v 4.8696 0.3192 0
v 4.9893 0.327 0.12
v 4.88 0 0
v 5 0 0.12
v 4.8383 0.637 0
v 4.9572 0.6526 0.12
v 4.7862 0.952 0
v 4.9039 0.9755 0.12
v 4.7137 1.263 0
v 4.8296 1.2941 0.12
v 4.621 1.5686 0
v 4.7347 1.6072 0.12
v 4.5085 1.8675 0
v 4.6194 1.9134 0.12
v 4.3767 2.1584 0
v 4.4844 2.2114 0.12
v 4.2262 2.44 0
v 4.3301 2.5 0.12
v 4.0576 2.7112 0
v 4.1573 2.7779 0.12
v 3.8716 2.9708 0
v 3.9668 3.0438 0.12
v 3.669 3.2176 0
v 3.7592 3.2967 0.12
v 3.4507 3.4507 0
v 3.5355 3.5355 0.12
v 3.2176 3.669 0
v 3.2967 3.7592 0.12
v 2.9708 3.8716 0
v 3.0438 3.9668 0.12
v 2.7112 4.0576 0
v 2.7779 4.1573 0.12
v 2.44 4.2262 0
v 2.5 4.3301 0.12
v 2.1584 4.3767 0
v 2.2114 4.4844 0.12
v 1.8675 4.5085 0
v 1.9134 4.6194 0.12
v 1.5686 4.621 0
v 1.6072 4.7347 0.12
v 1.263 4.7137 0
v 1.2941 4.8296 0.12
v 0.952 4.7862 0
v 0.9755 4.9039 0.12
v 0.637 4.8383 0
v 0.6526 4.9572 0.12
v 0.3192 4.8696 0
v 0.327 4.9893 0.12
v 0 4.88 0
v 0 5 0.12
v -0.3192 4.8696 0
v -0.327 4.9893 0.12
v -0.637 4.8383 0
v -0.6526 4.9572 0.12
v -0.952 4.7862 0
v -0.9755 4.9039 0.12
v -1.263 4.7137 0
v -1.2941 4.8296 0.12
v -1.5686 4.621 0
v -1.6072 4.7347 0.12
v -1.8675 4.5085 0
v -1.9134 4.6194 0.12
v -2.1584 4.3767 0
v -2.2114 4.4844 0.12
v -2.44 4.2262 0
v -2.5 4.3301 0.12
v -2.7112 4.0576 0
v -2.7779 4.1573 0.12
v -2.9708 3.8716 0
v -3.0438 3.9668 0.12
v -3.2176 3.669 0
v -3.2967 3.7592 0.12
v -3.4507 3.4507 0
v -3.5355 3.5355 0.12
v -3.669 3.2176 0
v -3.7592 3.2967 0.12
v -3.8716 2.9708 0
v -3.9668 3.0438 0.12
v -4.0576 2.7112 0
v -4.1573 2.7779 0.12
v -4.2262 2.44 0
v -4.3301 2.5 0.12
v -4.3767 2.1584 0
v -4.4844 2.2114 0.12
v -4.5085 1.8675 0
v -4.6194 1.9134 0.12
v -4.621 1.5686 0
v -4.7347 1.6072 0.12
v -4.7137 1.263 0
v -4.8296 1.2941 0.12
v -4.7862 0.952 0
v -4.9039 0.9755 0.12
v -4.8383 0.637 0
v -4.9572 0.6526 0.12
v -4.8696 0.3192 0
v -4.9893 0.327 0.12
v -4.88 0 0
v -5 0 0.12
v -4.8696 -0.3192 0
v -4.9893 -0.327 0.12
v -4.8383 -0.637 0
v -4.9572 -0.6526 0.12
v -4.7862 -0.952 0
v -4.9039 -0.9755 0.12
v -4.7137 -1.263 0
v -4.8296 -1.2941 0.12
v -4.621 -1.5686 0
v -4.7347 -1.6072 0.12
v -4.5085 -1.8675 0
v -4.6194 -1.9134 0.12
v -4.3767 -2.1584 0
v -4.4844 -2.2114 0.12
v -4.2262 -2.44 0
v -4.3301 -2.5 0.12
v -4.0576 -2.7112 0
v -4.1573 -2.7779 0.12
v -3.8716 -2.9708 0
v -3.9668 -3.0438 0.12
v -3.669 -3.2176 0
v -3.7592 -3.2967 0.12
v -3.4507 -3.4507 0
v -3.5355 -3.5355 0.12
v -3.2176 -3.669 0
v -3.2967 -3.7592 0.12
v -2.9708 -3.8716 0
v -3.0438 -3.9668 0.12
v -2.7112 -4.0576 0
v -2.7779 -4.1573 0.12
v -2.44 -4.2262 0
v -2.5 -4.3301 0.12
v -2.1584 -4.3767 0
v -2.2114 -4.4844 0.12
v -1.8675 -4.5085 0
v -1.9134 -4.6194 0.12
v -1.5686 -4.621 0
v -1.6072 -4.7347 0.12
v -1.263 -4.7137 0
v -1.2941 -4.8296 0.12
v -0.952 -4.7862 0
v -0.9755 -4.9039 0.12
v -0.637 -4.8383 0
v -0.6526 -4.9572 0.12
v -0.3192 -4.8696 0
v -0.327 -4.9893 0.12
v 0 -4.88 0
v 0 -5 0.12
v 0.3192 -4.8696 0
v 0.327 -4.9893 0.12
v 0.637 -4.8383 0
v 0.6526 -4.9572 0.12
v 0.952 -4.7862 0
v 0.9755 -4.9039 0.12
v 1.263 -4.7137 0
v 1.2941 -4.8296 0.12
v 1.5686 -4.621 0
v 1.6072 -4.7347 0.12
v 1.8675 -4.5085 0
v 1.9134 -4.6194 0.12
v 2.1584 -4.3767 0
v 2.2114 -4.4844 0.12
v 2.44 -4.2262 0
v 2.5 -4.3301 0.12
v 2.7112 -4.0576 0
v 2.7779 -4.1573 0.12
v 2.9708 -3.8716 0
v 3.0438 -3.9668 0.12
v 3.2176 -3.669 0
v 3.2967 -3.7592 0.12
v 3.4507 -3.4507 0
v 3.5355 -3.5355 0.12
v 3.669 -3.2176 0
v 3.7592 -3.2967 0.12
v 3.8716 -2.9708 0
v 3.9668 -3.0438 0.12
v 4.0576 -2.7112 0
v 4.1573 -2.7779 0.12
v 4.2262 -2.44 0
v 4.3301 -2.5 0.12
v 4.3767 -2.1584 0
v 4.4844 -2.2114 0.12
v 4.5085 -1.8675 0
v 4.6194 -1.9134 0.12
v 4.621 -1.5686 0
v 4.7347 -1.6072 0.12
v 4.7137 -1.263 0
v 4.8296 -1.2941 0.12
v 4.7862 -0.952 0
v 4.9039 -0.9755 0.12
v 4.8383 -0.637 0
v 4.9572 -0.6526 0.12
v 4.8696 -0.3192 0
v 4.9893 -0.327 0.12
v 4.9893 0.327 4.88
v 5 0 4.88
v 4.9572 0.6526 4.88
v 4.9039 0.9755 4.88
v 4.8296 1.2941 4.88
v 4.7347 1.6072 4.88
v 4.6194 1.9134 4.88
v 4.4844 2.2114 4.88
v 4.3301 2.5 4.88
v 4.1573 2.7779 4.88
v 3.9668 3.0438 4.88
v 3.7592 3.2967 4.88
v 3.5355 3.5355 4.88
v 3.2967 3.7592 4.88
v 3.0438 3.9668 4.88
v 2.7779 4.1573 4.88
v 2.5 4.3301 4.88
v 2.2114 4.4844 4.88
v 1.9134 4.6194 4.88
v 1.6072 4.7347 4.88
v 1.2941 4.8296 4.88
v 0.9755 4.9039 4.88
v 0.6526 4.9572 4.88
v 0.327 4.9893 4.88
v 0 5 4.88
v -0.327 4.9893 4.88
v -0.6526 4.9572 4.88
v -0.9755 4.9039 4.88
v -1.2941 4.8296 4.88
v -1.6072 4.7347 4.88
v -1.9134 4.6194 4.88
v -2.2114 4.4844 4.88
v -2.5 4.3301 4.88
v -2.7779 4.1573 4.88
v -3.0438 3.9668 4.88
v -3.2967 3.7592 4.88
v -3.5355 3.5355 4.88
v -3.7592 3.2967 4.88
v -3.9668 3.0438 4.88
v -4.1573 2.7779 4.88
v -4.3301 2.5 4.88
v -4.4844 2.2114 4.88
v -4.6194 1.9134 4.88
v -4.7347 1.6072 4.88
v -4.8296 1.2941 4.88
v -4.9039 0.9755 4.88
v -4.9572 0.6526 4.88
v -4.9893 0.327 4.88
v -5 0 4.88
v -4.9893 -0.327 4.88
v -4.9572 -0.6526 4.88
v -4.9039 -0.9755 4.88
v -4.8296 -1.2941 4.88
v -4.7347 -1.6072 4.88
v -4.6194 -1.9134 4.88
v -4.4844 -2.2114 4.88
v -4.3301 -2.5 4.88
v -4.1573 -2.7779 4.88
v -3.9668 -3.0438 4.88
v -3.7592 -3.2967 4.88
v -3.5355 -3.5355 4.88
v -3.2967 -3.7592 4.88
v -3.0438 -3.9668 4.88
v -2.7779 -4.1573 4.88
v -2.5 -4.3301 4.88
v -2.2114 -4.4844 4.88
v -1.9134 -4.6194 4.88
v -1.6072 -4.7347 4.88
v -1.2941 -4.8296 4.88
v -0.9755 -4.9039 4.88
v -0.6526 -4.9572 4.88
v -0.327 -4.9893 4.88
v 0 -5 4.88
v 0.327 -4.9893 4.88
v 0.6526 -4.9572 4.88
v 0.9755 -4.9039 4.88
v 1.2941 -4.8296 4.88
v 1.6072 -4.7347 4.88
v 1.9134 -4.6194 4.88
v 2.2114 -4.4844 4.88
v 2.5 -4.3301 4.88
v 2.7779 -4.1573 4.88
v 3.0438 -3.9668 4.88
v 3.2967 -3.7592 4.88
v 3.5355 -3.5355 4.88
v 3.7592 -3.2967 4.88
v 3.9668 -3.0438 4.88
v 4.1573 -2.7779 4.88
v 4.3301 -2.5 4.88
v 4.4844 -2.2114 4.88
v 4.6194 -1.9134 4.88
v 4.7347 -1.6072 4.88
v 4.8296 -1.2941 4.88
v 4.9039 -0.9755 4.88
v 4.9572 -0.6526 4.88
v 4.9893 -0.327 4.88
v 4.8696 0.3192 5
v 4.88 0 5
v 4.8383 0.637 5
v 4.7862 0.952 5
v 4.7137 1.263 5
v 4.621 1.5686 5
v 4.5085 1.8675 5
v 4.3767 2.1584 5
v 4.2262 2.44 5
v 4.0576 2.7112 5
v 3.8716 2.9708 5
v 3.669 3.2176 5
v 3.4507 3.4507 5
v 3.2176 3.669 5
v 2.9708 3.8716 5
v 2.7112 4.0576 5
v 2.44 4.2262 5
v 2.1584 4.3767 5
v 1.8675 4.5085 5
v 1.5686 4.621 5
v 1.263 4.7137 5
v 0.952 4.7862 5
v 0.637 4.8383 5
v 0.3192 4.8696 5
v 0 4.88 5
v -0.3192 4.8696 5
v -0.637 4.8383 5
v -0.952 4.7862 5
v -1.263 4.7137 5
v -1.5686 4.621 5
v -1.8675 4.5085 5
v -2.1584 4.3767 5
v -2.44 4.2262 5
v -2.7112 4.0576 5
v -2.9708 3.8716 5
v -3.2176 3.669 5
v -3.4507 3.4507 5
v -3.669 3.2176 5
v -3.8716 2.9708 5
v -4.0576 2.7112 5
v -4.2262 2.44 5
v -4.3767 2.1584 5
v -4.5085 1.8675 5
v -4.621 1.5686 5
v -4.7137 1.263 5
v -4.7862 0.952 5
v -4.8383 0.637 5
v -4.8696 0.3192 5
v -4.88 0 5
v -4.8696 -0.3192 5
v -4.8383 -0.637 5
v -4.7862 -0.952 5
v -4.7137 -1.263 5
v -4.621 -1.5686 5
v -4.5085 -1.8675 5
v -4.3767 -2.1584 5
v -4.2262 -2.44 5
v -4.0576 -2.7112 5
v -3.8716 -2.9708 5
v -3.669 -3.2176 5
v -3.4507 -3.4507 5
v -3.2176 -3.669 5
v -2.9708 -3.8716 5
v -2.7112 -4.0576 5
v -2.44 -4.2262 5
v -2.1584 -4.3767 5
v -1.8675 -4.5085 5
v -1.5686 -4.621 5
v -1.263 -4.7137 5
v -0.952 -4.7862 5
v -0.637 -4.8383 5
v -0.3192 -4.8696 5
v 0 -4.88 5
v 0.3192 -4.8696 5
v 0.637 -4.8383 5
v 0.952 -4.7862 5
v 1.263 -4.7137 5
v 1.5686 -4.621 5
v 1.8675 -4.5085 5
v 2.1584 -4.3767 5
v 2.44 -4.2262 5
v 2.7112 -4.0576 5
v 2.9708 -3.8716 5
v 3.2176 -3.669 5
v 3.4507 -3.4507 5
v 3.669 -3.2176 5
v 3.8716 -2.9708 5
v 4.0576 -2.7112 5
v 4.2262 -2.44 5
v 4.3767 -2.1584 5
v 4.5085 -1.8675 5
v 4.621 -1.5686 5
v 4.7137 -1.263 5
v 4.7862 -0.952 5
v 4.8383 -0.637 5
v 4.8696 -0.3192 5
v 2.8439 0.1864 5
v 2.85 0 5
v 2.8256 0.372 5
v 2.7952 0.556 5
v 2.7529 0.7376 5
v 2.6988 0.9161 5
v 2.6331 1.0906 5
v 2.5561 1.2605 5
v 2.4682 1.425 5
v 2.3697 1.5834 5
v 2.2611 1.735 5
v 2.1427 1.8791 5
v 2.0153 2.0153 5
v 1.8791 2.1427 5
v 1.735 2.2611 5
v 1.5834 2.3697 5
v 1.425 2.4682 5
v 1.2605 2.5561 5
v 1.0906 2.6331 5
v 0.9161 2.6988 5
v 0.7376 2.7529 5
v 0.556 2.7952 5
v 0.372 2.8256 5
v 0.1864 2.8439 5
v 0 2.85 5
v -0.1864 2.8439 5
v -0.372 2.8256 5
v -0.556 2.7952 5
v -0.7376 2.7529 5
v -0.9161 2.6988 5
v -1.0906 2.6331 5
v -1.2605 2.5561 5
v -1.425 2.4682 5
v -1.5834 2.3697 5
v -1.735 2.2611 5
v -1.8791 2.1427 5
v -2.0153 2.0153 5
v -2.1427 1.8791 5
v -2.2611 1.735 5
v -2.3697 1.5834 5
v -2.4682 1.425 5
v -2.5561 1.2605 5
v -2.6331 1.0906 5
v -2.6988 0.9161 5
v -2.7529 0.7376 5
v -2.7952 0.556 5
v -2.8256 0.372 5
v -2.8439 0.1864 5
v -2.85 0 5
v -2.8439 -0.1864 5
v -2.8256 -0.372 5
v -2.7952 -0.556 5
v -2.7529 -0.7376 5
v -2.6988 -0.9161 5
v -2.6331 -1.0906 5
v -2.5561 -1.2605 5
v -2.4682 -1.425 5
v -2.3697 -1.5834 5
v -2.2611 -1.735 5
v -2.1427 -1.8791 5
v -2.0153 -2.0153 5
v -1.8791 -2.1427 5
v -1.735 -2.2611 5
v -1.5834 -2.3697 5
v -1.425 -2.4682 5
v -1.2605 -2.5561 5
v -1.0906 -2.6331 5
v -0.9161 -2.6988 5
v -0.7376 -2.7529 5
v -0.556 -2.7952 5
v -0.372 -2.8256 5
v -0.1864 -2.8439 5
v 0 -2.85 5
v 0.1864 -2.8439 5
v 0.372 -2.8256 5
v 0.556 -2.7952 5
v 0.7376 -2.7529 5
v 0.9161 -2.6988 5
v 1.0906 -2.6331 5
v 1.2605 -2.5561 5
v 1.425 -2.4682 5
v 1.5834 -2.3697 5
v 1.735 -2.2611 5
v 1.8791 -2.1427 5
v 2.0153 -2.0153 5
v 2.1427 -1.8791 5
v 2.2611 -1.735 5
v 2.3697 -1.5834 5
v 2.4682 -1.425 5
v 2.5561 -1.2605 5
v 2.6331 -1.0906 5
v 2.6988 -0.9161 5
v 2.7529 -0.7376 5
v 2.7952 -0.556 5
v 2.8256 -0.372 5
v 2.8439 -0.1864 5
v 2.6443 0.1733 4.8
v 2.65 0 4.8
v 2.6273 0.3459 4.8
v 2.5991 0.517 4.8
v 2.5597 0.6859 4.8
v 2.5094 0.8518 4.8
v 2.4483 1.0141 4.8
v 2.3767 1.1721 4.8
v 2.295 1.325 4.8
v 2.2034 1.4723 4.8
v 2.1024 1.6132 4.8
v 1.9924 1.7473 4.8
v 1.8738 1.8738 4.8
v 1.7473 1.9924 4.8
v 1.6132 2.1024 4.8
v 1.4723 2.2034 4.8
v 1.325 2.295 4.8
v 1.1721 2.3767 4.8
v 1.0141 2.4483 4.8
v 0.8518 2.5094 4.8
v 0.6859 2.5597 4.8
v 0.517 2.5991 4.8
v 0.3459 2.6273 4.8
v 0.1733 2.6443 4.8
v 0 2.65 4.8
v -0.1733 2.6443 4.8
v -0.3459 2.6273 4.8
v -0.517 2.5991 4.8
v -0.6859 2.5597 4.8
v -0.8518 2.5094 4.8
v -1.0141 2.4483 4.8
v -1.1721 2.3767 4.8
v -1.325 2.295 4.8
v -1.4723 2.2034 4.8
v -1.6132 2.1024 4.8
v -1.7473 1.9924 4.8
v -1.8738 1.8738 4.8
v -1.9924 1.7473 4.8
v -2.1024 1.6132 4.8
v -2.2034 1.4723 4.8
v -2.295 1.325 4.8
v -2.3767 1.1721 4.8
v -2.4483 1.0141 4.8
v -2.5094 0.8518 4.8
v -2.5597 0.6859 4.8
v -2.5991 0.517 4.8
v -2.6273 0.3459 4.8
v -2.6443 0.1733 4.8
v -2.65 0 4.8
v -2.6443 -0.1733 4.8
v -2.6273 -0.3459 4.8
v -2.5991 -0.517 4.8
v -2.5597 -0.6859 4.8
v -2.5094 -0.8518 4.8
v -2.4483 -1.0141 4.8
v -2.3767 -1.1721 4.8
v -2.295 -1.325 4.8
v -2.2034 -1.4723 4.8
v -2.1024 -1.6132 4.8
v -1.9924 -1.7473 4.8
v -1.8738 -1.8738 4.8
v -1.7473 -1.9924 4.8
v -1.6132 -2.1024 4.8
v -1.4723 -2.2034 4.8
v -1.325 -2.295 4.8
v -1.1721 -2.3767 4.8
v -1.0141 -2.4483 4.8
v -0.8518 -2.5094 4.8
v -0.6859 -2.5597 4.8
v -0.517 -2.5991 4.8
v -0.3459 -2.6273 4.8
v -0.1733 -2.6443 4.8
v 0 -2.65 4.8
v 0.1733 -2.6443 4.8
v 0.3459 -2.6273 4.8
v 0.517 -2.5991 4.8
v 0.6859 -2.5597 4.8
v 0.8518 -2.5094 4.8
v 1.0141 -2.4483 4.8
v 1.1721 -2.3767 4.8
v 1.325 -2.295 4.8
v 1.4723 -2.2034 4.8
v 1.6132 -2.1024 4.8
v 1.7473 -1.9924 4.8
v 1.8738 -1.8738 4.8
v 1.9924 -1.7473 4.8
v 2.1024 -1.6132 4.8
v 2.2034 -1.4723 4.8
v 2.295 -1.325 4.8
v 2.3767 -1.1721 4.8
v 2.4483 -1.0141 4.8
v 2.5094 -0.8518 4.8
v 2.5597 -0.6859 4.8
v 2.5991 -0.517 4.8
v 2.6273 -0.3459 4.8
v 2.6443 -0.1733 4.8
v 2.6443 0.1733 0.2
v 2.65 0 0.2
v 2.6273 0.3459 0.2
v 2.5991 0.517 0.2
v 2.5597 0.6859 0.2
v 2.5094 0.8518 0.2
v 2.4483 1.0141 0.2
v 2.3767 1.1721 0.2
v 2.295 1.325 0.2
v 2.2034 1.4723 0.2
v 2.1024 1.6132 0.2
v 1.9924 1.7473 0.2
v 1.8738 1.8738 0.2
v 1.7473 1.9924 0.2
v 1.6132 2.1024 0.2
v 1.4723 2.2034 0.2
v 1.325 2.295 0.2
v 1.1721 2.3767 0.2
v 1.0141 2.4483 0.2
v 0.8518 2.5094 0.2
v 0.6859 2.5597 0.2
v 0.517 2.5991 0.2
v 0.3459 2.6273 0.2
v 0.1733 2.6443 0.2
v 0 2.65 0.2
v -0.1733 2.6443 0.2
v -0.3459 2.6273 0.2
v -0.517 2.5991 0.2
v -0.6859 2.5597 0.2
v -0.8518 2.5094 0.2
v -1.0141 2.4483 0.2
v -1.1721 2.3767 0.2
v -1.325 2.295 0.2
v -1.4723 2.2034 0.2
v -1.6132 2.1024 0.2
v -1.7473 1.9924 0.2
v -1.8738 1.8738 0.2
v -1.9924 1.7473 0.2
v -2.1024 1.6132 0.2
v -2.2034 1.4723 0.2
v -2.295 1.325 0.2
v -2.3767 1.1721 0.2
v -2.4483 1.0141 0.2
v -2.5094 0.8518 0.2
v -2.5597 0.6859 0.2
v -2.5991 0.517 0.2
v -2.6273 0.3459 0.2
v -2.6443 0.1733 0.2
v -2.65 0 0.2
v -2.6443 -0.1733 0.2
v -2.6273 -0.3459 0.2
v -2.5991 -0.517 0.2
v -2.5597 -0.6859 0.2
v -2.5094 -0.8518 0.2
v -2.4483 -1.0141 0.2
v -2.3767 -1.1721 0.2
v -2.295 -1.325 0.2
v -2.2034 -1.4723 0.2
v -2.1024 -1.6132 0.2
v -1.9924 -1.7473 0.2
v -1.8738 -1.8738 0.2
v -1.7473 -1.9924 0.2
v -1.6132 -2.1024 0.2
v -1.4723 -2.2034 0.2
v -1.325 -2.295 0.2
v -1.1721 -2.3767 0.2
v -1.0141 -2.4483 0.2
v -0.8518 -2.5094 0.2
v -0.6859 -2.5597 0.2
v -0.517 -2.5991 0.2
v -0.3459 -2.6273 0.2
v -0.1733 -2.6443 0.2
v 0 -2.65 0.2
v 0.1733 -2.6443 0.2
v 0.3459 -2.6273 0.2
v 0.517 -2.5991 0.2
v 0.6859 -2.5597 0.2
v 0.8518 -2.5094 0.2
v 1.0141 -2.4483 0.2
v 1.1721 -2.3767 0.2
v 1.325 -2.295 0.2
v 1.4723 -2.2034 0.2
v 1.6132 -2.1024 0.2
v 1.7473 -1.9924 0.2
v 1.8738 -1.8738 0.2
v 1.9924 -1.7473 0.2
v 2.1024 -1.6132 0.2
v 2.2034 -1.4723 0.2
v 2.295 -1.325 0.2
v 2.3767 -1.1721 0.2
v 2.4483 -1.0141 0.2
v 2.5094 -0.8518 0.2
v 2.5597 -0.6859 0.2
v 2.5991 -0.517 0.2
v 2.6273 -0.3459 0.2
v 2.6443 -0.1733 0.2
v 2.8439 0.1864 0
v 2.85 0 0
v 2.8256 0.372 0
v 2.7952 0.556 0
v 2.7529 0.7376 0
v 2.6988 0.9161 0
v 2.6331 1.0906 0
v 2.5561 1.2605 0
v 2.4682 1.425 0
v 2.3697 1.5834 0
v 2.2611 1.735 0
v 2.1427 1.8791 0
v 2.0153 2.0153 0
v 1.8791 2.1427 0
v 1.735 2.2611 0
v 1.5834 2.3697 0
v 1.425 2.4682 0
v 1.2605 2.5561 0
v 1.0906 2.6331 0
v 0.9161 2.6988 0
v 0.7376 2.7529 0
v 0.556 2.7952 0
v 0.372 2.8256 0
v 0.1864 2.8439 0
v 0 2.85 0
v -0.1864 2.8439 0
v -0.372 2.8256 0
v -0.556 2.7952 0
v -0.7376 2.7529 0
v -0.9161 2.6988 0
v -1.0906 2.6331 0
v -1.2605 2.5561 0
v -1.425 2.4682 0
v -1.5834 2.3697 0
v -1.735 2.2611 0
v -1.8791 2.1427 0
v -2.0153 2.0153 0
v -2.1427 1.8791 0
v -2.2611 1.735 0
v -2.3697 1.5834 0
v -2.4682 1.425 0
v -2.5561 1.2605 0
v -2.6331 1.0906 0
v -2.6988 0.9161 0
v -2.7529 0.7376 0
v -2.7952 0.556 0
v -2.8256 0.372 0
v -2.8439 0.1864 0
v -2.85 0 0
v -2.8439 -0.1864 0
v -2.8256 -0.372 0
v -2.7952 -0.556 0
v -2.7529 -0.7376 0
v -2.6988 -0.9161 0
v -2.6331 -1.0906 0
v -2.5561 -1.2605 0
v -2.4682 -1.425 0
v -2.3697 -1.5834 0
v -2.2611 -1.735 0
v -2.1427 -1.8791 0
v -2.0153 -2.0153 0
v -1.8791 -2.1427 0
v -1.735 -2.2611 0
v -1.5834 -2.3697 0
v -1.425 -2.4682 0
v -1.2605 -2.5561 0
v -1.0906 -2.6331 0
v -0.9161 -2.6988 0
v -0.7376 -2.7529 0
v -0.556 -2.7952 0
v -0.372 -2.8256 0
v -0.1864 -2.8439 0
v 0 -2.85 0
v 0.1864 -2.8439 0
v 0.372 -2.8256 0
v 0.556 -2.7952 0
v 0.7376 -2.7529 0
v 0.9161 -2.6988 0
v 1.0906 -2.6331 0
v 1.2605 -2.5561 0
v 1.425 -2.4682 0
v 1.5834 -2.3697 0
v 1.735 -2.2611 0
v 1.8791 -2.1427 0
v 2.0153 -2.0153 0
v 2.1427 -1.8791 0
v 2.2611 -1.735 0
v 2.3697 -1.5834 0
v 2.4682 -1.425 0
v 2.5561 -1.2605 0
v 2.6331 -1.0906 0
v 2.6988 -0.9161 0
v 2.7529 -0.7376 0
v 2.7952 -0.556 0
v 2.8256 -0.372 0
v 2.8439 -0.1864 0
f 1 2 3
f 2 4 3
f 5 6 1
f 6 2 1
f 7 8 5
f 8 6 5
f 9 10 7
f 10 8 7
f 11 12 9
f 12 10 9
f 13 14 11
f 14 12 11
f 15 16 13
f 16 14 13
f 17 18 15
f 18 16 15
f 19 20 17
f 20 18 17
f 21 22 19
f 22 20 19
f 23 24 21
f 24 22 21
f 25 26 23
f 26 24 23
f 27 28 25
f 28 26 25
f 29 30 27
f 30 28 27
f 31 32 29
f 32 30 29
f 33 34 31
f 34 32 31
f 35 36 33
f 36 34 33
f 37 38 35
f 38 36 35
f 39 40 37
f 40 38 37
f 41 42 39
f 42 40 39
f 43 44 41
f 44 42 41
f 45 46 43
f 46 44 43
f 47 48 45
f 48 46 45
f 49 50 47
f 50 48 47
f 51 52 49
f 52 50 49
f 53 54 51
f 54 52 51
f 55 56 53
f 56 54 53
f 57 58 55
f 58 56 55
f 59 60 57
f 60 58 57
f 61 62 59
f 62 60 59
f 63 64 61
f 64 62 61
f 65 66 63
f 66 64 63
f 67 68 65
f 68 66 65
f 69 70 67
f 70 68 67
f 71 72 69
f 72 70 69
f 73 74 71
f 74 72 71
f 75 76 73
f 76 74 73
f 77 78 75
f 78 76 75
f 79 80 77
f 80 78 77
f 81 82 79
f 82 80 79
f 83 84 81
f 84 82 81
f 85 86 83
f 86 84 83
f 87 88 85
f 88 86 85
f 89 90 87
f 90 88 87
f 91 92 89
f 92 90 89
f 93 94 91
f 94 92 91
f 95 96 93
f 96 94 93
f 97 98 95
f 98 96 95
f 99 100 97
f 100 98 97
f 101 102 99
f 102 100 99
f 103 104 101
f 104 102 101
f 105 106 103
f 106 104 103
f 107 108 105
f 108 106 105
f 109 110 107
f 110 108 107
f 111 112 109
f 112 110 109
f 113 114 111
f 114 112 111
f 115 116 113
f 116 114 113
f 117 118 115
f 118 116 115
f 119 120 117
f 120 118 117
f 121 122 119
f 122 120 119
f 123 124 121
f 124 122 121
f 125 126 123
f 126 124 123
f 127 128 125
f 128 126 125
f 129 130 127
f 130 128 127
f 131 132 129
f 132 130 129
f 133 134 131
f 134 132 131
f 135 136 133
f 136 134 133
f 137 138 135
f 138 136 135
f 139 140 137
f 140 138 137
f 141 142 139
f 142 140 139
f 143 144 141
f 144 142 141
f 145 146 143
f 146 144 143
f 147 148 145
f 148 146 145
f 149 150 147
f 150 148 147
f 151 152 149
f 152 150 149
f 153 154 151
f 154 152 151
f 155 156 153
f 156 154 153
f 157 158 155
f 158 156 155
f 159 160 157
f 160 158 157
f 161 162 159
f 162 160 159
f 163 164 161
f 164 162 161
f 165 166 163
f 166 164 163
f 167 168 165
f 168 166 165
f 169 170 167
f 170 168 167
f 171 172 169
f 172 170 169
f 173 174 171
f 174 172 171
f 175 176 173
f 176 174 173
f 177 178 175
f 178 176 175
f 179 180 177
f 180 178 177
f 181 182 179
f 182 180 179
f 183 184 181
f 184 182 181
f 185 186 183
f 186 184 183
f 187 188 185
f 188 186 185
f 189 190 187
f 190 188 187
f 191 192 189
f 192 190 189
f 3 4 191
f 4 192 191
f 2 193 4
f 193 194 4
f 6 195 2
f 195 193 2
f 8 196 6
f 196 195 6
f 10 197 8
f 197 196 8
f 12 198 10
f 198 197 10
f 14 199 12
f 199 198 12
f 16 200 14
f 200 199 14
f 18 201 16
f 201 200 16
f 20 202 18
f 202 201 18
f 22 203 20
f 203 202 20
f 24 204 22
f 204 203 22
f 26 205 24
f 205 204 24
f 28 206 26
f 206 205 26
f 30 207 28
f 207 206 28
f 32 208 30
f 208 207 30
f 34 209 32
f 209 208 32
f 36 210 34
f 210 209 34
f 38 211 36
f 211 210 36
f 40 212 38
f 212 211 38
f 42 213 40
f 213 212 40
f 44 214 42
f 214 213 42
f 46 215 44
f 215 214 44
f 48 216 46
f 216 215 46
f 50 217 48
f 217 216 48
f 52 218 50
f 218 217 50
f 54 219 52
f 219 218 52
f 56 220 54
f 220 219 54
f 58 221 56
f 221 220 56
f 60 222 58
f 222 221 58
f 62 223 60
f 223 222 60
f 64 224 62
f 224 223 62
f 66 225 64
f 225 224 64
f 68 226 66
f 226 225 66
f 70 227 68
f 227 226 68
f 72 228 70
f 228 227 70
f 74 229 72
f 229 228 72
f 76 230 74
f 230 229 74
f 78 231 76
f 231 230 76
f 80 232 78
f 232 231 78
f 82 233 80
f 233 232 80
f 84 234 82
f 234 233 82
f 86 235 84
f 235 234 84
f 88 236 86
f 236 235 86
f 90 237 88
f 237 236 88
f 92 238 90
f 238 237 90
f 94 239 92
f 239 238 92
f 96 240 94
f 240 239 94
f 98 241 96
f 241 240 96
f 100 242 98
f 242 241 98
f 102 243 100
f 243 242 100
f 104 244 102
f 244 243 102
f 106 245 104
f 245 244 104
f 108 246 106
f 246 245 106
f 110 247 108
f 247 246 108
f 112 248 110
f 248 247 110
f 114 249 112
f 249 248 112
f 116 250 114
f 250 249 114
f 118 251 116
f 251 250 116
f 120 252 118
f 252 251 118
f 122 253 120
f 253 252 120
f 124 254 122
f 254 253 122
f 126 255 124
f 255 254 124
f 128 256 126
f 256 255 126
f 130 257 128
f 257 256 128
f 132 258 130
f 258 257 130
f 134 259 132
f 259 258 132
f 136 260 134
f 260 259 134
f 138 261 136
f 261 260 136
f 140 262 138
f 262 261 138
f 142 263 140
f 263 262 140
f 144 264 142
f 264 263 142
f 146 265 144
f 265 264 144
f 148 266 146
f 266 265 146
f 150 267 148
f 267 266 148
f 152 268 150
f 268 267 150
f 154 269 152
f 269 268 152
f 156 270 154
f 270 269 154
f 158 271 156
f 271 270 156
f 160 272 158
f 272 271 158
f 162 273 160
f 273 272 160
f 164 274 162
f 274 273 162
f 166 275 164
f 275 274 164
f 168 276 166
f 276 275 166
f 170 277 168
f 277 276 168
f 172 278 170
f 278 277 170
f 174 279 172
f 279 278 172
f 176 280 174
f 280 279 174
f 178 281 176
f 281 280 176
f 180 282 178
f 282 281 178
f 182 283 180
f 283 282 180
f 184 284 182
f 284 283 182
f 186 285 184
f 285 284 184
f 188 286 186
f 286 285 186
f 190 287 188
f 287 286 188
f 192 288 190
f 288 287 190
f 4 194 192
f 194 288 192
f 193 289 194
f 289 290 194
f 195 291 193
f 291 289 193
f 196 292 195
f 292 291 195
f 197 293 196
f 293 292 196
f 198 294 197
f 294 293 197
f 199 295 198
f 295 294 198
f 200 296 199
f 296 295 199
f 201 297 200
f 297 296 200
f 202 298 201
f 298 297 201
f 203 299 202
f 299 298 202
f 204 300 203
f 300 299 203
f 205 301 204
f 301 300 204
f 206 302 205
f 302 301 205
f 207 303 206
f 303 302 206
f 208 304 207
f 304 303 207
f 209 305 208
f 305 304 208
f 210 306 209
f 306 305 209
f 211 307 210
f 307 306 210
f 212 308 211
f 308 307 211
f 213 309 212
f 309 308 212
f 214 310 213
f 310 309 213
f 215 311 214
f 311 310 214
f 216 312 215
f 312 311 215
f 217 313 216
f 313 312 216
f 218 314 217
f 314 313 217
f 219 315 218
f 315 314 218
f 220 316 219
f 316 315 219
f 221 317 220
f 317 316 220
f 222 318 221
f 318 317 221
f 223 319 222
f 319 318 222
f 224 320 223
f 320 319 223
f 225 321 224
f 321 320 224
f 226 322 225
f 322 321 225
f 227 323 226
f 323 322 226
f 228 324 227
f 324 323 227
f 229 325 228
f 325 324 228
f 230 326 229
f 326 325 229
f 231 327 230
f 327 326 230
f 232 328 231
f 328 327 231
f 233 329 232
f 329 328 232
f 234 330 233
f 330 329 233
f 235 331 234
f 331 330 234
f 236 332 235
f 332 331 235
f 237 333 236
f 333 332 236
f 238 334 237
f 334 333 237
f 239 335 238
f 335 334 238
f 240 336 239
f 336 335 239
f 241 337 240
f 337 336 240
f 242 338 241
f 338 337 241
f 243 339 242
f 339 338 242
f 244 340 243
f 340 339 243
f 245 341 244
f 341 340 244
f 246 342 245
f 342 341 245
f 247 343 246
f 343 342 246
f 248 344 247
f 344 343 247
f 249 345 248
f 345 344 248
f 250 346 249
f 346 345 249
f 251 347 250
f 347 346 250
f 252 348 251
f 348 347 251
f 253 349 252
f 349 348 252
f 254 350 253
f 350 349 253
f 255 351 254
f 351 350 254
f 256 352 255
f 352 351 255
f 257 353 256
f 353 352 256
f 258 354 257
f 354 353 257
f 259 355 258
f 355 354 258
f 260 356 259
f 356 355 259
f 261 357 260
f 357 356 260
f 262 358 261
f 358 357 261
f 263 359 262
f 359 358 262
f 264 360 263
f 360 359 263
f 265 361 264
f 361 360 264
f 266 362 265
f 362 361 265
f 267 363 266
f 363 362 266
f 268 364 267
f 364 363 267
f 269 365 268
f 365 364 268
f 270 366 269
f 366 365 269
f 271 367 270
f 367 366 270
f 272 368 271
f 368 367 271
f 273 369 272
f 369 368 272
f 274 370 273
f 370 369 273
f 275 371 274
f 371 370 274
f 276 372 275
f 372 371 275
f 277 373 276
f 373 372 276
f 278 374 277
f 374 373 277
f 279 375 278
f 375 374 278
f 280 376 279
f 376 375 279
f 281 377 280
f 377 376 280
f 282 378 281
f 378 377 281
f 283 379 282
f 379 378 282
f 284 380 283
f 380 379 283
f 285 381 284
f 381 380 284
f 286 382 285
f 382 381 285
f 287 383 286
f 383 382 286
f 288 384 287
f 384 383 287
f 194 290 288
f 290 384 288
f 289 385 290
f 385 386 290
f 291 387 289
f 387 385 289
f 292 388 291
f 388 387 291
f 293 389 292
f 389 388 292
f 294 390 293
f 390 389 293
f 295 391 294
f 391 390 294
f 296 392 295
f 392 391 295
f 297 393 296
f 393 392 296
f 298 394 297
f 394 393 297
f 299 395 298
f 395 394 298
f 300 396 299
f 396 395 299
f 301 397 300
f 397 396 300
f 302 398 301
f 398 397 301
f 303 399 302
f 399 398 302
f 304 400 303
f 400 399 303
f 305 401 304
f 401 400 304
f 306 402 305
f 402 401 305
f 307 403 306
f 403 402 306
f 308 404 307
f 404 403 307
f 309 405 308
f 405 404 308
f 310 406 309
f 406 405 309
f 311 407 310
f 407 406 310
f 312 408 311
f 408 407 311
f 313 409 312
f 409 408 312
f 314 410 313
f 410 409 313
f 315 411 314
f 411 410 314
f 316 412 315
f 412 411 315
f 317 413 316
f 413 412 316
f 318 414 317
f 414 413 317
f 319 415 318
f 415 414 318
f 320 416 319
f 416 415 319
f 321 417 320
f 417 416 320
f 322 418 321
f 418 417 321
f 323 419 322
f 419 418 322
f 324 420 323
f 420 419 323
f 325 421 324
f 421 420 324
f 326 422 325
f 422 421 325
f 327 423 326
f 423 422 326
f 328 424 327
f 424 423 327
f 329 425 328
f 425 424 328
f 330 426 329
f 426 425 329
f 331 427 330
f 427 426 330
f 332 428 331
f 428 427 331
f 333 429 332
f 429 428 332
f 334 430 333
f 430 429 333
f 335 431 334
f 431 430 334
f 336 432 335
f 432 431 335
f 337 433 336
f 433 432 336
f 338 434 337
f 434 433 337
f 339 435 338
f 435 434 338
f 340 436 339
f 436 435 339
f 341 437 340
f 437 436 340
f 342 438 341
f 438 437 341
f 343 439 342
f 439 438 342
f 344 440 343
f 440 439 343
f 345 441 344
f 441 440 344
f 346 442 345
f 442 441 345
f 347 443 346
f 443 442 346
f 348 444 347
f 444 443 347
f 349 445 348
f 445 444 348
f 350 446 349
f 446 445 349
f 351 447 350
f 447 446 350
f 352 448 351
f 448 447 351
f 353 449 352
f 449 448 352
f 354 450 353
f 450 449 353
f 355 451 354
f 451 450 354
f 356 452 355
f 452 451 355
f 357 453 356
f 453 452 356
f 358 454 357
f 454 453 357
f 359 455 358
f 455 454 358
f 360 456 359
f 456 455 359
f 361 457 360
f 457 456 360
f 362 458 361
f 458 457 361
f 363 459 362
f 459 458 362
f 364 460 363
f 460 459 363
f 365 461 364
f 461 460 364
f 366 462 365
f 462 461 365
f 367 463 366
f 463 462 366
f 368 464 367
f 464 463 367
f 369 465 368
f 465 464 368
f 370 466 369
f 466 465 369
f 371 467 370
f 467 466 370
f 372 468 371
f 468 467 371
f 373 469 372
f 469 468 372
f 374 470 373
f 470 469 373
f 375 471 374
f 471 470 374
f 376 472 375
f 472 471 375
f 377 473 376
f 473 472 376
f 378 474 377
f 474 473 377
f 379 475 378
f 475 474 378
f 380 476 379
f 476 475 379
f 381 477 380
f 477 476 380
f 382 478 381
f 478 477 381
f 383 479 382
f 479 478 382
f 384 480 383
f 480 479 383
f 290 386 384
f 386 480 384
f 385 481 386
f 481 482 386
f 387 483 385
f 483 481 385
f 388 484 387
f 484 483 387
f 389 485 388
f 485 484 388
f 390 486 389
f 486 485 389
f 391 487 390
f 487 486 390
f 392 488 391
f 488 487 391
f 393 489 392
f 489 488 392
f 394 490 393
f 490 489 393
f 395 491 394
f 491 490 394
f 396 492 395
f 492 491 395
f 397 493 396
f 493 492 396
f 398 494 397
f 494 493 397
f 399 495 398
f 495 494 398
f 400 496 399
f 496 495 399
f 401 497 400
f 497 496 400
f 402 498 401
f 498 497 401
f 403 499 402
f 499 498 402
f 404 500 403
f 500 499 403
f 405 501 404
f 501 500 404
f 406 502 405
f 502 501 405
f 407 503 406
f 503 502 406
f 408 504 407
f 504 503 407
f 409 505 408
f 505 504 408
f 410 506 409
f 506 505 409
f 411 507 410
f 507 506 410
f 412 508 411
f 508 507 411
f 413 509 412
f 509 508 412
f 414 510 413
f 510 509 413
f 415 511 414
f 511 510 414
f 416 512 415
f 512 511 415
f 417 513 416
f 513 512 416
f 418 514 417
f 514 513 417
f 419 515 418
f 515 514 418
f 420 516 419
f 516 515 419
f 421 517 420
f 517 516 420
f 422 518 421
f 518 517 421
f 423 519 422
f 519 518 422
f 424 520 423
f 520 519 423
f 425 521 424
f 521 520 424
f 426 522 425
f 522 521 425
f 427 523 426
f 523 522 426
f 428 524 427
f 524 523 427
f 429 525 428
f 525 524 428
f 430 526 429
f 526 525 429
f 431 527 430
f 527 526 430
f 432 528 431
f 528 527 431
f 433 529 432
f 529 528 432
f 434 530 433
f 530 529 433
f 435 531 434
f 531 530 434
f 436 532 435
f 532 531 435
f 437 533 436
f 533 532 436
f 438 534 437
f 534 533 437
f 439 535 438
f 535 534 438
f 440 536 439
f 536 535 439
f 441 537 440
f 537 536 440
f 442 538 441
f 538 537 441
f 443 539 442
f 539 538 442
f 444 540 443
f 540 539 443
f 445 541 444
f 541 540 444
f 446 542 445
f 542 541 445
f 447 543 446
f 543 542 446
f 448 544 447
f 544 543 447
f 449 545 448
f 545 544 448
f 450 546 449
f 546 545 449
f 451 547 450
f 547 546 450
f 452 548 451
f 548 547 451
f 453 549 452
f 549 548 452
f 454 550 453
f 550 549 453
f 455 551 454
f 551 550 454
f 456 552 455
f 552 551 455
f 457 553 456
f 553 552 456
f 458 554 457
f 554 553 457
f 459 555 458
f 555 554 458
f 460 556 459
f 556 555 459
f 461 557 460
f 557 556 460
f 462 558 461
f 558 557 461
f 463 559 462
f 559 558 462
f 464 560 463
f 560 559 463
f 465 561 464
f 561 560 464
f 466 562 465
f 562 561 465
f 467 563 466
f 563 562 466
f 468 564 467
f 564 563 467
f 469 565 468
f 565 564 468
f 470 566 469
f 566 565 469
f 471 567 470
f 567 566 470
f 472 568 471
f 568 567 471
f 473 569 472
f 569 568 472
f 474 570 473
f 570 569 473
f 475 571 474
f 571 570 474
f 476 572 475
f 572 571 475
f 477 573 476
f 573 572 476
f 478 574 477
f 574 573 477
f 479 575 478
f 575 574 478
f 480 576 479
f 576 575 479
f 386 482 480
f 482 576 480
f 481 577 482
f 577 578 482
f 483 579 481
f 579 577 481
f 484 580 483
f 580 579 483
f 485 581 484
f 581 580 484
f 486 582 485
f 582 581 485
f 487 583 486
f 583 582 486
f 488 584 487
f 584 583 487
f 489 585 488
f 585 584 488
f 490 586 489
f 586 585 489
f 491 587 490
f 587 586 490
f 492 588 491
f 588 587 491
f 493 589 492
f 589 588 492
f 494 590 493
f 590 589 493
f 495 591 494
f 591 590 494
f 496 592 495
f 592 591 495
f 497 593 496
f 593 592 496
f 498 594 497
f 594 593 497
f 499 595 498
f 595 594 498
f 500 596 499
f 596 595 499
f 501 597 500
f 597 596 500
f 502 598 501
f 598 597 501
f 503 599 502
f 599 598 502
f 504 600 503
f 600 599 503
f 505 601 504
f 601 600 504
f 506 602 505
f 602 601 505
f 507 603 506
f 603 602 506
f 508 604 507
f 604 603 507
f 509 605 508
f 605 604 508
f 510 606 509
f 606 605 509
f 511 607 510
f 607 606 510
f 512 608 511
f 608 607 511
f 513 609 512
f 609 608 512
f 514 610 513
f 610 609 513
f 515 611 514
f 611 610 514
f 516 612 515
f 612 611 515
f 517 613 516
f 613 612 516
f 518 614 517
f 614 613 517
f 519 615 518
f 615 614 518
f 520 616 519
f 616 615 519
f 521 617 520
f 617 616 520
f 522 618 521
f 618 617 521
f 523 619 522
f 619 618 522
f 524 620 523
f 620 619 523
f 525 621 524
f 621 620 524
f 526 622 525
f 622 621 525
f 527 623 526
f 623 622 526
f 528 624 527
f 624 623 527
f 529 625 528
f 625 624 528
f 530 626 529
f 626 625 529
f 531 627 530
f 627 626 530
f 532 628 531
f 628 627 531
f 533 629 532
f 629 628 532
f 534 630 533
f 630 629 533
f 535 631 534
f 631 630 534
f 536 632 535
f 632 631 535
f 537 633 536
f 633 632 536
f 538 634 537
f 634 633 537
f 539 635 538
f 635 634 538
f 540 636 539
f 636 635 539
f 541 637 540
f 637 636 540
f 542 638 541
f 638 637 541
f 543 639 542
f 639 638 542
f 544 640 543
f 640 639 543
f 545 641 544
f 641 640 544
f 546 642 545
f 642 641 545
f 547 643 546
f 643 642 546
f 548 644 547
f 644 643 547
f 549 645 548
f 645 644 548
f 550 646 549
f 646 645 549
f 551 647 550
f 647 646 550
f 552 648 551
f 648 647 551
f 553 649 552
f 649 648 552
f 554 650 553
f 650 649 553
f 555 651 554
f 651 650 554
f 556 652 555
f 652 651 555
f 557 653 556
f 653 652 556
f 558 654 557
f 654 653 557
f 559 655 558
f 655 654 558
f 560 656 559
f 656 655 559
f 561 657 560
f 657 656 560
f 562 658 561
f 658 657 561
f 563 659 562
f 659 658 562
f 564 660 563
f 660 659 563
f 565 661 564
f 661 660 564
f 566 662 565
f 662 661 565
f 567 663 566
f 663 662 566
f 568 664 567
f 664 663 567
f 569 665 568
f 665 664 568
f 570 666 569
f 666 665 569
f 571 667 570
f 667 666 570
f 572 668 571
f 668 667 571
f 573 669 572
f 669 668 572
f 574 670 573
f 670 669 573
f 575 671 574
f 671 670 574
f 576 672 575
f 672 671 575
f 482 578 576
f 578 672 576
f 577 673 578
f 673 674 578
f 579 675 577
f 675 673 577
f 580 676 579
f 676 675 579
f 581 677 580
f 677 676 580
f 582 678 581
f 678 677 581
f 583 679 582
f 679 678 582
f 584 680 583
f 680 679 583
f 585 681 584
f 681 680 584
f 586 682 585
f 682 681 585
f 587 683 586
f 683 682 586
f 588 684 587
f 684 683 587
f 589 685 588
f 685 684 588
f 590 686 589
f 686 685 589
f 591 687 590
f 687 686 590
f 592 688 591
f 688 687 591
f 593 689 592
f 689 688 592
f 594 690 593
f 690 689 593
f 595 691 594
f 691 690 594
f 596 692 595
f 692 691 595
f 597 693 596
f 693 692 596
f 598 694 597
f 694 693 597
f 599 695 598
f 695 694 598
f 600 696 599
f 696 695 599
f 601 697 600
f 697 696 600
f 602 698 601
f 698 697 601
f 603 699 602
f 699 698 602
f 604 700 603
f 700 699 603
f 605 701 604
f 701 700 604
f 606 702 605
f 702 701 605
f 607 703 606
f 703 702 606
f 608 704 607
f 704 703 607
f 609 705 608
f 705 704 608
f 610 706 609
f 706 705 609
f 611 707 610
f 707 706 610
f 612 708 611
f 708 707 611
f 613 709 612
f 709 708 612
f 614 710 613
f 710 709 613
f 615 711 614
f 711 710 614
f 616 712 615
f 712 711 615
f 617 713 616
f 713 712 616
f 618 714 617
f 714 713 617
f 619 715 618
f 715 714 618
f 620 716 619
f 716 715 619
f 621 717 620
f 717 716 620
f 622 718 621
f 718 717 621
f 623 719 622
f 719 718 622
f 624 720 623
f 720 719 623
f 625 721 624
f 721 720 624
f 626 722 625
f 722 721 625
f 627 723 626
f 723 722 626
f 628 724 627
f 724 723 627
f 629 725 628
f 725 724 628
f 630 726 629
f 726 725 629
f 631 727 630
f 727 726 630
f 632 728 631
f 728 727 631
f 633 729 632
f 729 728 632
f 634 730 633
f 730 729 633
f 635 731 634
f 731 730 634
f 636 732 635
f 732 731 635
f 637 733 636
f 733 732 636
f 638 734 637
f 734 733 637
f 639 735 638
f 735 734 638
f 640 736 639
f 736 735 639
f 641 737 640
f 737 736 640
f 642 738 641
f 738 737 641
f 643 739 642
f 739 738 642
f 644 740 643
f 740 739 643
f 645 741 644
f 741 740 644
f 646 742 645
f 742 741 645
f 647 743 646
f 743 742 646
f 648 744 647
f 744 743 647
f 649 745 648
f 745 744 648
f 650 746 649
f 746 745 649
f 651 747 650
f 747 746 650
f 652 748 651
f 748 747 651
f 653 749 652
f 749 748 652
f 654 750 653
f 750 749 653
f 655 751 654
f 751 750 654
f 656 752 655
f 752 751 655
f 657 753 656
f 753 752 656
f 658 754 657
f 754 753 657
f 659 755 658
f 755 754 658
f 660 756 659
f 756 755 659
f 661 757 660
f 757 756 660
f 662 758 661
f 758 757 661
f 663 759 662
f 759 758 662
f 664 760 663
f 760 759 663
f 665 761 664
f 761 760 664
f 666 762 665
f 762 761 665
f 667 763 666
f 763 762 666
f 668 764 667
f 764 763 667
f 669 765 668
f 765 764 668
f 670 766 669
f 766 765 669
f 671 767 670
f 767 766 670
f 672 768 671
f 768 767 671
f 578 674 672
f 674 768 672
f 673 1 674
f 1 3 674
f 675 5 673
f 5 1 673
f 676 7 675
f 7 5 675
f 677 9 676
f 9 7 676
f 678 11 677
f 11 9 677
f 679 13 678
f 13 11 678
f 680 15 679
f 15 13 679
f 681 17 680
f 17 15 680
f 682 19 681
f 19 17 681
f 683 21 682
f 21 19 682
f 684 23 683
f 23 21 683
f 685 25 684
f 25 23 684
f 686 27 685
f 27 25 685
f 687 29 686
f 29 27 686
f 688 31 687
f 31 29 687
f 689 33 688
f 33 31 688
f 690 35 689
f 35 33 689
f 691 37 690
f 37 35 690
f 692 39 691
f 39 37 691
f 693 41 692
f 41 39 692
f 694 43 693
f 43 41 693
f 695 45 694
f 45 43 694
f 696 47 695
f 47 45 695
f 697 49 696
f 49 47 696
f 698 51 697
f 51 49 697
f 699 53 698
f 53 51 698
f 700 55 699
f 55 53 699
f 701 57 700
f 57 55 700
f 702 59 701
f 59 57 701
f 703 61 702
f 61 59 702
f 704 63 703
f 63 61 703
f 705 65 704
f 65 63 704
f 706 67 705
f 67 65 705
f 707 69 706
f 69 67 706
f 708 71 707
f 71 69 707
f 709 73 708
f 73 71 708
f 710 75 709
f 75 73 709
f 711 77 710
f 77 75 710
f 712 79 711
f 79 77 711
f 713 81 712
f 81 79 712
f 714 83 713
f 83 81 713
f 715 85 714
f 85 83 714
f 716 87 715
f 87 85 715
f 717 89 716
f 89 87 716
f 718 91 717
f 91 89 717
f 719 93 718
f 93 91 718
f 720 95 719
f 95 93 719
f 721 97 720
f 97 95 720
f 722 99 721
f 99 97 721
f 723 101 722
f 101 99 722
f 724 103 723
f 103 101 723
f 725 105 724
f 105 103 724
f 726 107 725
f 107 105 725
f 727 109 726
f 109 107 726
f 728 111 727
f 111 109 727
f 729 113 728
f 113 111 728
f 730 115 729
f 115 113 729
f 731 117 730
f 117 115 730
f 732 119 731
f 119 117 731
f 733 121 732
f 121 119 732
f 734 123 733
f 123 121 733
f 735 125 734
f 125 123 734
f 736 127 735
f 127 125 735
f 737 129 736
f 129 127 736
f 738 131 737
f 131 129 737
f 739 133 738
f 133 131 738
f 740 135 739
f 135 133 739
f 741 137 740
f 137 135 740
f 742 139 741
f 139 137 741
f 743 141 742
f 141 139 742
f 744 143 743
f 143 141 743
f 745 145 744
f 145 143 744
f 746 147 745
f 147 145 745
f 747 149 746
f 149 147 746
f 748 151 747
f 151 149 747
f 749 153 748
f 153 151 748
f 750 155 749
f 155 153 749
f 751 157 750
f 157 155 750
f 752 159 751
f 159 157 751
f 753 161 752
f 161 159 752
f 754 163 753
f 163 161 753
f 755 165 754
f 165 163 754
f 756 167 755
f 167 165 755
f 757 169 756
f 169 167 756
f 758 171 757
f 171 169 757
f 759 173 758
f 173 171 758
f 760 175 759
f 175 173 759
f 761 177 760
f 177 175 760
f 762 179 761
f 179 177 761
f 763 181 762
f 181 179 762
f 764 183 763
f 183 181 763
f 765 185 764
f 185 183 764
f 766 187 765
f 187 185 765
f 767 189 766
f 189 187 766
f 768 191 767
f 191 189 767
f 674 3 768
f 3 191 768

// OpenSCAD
// OOMP generic catalogue model; units: mm.
// Stud length is additional to body depth. Tapping depths are model assumptions.
variant = "full"; // [full, display]
family = "spacer";
connection_type = "plain";
depth_mm = 5;
stud_length_mm = 0;
tapped_depth_mm = 0;
bore_mm = 5.3;
outer_diameter_mm = 10;
across_flats_mm = 6;
thread_nominal_diameter_mm = 3;
thread_pitch_mm = 0.5;
edge_chamfer_mm = 0.12;
mouth_chamfer_mm = 0.2;
angular_segments = 96;
samples_per_pitch = 16;

// Boundary travels up the outside, then down any tapped/plain bore.
// Equal-height rings at shoulders form the annular shoulder faces.
n = angular_segments;
threaded = family == "standoff";
has_stud = connection_type == "stud_to_tapped" || connection_type == "stud_to_stud";
two_studs = connection_type == "stud_to_stud";
through = !threaded || connection_type == "tapped_to_tapped";
pitch = thread_pitch_mm;
diameter = threaded ? thread_nominal_diameter_mm : bore_mm;
minor = diameter - 5*sqrt(3)*pitch/8;
transition = mouth_chamfer_mm + (threaded ? 5*sqrt(3)*pitch/16 : 0);
tip_chamfer = mouth_chamfer_mm + 17*sqrt(3)*pitch/48;
function sorted(v) = len(v)<=1 ? v : let(p=v[0])
    concat(sorted([for(x=v) if(x<p-1e-8) x]), [p], sorted([for(x=v) if(x>p+1e-8) x]));
function reverse(v) = [for(i=[len(v)-1:-1:0]) v[i]];
function theta(i) = i*360/n;
function fract(x) = x-floor(x);
function phase_distance(i,z) = abs(fract(z/pitch-theta(i)/360+0.5)-0.5);
function thread_r(i,z) = minor/2 + min(5*sqrt(3)*pitch/16,
    max(0,(phase_distance(i,z)-0.125)*pitch*sqrt(3)));
function stud_r(i,z,tip) = min(diameter/2 - (variant=="full" ?
    min(17*sqrt(3)*pitch/48,max(0,(phase_distance(i,z)-0.0625)*pitch*sqrt(3))) : 0),
    diameter/2-tip_chamfer+abs(z-tip));
function body_r(i,z) = (threaded ? across_flats_mm/2/cos(theta(i)%60-30) : outer_diameter_mm/2)
    - max(0,edge_chamfer_mm-min(z,depth_mm-z));
function bore_r(i,z) = max(threaded ? (variant=="full" ? thread_r(i,z) : minor/2) : diameter/2,
    diameter/2+mouth_chamfer_mm-(through ? min(z,depth_mm-z) : depth_mm-z));
function stud_z(a,b,tip) = let(count=variant=="full" ? ceil(stud_length_mm/pitch*samples_per_pitch) : 1)
    sorted(concat([for(i=[0:count]) a+(b-a)*i/count], [tip==a ? tip+tip_chamfer : tip-tip_chamfer]));
body_z = sorted([0,edge_chamfer_mm,depth_mm-edge_chamfer_mm,depth_mm]);
low = through ? 0 : depth_mm-tapped_depth_mm;
count = threaded && variant=="full" ? ceil((depth_mm-low)/pitch*samples_per_pitch) : 1;
bore_z = two_studs ? [] : reverse(sorted(concat(
    [for(i=[0:count]) low+(depth_mm-low)*i/count],
    [depth_mm-mouth_chamfer_mm,depth_mm-transition],
    through ? [mouth_chamfer_mm,transition] : [])));
// Ring descriptors: [height, kind, tip]. Kind: 0 body, 1 stud, 2 bore.
rings = concat(
    has_stud ? [for(z=stud_z(-stud_length_mm,0,-stud_length_mm)) [z,1,-stud_length_mm]] : [],
    [for(z=body_z) [z,0,0]],
    two_studs ? [for(z=stud_z(depth_mm,depth_mm+stud_length_mm,depth_mm+stud_length_mm)) [z,1,depth_mm+stud_length_mm]] : [],
    [for(z=bore_z) [z,2,0]]);
function radius(i,ring) = ring[1]==0 ? body_r(i,ring[0]) :
    ring[1]==1 ? stud_r(i,ring[0],ring[2]) : bore_r(i,ring[0]);
points = concat([for(ring=rings) for(i=[0:n-1])
    [radius(i,ring)*cos(theta(i)),radius(i,ring)*sin(theta(i)),ring[0]]],
    through ? [] : [[0,0,rings[0][0]],[0,0,rings[len(rings)-1][0]]]);
center = len(rings)*n;
last = (len(rings)-1)*n;
// OpenSCAD winding is opposite to STL winding.
faces = concat(
    [for(j=[0:len(rings)-(through ? 1 : 2)]) for(i=[0:n-1]) each
        let(a=j*n+i,b=j*n+(i+1)%n,c=((j+1)%len(rings))*n+(i+1)%n,d=((j+1)%len(rings))*n+i)
        [[a,c,b],[a,d,c]]],
    through ? [] : [for(i=[0:n-1]) each let(k=(i+1)%n)
        [[center,i,k],[center+1,last+k,last+i]]]);
assert(family=="spacer" || family=="standoff");
assert(!threaded || connection_type=="tapped_to_tapped" || has_stud);
assert(depth_mm>0 && diameter>0 && pitch>0);
assert(variant=="full" || variant=="display");
assert(n>=24 && n%12==0 && samples_per_pitch>=8);
assert(mouth_chamfer_mm>0 && mouth_chamfer_mm<depth_mm/2);
assert(edge_chamfer_mm>=0 && edge_chamfer_mm<depth_mm/2);
assert(diameter+4*max(mouth_chamfer_mm,edge_chamfer_mm) < (threaded ? across_flats_mm : outer_diameter_mm));
assert(!has_stud || stud_length_mm>2*mouth_chamfer_mm);
assert(!through || !threaded || 2*transition<depth_mm);
assert(connection_type!="stud_to_tapped" || (tapped_depth_mm>transition && tapped_depth_mm<depth_mm));
color([0.86,0.85,0.81]) polyhedron(points=points,faces=faces,convexity=20);
